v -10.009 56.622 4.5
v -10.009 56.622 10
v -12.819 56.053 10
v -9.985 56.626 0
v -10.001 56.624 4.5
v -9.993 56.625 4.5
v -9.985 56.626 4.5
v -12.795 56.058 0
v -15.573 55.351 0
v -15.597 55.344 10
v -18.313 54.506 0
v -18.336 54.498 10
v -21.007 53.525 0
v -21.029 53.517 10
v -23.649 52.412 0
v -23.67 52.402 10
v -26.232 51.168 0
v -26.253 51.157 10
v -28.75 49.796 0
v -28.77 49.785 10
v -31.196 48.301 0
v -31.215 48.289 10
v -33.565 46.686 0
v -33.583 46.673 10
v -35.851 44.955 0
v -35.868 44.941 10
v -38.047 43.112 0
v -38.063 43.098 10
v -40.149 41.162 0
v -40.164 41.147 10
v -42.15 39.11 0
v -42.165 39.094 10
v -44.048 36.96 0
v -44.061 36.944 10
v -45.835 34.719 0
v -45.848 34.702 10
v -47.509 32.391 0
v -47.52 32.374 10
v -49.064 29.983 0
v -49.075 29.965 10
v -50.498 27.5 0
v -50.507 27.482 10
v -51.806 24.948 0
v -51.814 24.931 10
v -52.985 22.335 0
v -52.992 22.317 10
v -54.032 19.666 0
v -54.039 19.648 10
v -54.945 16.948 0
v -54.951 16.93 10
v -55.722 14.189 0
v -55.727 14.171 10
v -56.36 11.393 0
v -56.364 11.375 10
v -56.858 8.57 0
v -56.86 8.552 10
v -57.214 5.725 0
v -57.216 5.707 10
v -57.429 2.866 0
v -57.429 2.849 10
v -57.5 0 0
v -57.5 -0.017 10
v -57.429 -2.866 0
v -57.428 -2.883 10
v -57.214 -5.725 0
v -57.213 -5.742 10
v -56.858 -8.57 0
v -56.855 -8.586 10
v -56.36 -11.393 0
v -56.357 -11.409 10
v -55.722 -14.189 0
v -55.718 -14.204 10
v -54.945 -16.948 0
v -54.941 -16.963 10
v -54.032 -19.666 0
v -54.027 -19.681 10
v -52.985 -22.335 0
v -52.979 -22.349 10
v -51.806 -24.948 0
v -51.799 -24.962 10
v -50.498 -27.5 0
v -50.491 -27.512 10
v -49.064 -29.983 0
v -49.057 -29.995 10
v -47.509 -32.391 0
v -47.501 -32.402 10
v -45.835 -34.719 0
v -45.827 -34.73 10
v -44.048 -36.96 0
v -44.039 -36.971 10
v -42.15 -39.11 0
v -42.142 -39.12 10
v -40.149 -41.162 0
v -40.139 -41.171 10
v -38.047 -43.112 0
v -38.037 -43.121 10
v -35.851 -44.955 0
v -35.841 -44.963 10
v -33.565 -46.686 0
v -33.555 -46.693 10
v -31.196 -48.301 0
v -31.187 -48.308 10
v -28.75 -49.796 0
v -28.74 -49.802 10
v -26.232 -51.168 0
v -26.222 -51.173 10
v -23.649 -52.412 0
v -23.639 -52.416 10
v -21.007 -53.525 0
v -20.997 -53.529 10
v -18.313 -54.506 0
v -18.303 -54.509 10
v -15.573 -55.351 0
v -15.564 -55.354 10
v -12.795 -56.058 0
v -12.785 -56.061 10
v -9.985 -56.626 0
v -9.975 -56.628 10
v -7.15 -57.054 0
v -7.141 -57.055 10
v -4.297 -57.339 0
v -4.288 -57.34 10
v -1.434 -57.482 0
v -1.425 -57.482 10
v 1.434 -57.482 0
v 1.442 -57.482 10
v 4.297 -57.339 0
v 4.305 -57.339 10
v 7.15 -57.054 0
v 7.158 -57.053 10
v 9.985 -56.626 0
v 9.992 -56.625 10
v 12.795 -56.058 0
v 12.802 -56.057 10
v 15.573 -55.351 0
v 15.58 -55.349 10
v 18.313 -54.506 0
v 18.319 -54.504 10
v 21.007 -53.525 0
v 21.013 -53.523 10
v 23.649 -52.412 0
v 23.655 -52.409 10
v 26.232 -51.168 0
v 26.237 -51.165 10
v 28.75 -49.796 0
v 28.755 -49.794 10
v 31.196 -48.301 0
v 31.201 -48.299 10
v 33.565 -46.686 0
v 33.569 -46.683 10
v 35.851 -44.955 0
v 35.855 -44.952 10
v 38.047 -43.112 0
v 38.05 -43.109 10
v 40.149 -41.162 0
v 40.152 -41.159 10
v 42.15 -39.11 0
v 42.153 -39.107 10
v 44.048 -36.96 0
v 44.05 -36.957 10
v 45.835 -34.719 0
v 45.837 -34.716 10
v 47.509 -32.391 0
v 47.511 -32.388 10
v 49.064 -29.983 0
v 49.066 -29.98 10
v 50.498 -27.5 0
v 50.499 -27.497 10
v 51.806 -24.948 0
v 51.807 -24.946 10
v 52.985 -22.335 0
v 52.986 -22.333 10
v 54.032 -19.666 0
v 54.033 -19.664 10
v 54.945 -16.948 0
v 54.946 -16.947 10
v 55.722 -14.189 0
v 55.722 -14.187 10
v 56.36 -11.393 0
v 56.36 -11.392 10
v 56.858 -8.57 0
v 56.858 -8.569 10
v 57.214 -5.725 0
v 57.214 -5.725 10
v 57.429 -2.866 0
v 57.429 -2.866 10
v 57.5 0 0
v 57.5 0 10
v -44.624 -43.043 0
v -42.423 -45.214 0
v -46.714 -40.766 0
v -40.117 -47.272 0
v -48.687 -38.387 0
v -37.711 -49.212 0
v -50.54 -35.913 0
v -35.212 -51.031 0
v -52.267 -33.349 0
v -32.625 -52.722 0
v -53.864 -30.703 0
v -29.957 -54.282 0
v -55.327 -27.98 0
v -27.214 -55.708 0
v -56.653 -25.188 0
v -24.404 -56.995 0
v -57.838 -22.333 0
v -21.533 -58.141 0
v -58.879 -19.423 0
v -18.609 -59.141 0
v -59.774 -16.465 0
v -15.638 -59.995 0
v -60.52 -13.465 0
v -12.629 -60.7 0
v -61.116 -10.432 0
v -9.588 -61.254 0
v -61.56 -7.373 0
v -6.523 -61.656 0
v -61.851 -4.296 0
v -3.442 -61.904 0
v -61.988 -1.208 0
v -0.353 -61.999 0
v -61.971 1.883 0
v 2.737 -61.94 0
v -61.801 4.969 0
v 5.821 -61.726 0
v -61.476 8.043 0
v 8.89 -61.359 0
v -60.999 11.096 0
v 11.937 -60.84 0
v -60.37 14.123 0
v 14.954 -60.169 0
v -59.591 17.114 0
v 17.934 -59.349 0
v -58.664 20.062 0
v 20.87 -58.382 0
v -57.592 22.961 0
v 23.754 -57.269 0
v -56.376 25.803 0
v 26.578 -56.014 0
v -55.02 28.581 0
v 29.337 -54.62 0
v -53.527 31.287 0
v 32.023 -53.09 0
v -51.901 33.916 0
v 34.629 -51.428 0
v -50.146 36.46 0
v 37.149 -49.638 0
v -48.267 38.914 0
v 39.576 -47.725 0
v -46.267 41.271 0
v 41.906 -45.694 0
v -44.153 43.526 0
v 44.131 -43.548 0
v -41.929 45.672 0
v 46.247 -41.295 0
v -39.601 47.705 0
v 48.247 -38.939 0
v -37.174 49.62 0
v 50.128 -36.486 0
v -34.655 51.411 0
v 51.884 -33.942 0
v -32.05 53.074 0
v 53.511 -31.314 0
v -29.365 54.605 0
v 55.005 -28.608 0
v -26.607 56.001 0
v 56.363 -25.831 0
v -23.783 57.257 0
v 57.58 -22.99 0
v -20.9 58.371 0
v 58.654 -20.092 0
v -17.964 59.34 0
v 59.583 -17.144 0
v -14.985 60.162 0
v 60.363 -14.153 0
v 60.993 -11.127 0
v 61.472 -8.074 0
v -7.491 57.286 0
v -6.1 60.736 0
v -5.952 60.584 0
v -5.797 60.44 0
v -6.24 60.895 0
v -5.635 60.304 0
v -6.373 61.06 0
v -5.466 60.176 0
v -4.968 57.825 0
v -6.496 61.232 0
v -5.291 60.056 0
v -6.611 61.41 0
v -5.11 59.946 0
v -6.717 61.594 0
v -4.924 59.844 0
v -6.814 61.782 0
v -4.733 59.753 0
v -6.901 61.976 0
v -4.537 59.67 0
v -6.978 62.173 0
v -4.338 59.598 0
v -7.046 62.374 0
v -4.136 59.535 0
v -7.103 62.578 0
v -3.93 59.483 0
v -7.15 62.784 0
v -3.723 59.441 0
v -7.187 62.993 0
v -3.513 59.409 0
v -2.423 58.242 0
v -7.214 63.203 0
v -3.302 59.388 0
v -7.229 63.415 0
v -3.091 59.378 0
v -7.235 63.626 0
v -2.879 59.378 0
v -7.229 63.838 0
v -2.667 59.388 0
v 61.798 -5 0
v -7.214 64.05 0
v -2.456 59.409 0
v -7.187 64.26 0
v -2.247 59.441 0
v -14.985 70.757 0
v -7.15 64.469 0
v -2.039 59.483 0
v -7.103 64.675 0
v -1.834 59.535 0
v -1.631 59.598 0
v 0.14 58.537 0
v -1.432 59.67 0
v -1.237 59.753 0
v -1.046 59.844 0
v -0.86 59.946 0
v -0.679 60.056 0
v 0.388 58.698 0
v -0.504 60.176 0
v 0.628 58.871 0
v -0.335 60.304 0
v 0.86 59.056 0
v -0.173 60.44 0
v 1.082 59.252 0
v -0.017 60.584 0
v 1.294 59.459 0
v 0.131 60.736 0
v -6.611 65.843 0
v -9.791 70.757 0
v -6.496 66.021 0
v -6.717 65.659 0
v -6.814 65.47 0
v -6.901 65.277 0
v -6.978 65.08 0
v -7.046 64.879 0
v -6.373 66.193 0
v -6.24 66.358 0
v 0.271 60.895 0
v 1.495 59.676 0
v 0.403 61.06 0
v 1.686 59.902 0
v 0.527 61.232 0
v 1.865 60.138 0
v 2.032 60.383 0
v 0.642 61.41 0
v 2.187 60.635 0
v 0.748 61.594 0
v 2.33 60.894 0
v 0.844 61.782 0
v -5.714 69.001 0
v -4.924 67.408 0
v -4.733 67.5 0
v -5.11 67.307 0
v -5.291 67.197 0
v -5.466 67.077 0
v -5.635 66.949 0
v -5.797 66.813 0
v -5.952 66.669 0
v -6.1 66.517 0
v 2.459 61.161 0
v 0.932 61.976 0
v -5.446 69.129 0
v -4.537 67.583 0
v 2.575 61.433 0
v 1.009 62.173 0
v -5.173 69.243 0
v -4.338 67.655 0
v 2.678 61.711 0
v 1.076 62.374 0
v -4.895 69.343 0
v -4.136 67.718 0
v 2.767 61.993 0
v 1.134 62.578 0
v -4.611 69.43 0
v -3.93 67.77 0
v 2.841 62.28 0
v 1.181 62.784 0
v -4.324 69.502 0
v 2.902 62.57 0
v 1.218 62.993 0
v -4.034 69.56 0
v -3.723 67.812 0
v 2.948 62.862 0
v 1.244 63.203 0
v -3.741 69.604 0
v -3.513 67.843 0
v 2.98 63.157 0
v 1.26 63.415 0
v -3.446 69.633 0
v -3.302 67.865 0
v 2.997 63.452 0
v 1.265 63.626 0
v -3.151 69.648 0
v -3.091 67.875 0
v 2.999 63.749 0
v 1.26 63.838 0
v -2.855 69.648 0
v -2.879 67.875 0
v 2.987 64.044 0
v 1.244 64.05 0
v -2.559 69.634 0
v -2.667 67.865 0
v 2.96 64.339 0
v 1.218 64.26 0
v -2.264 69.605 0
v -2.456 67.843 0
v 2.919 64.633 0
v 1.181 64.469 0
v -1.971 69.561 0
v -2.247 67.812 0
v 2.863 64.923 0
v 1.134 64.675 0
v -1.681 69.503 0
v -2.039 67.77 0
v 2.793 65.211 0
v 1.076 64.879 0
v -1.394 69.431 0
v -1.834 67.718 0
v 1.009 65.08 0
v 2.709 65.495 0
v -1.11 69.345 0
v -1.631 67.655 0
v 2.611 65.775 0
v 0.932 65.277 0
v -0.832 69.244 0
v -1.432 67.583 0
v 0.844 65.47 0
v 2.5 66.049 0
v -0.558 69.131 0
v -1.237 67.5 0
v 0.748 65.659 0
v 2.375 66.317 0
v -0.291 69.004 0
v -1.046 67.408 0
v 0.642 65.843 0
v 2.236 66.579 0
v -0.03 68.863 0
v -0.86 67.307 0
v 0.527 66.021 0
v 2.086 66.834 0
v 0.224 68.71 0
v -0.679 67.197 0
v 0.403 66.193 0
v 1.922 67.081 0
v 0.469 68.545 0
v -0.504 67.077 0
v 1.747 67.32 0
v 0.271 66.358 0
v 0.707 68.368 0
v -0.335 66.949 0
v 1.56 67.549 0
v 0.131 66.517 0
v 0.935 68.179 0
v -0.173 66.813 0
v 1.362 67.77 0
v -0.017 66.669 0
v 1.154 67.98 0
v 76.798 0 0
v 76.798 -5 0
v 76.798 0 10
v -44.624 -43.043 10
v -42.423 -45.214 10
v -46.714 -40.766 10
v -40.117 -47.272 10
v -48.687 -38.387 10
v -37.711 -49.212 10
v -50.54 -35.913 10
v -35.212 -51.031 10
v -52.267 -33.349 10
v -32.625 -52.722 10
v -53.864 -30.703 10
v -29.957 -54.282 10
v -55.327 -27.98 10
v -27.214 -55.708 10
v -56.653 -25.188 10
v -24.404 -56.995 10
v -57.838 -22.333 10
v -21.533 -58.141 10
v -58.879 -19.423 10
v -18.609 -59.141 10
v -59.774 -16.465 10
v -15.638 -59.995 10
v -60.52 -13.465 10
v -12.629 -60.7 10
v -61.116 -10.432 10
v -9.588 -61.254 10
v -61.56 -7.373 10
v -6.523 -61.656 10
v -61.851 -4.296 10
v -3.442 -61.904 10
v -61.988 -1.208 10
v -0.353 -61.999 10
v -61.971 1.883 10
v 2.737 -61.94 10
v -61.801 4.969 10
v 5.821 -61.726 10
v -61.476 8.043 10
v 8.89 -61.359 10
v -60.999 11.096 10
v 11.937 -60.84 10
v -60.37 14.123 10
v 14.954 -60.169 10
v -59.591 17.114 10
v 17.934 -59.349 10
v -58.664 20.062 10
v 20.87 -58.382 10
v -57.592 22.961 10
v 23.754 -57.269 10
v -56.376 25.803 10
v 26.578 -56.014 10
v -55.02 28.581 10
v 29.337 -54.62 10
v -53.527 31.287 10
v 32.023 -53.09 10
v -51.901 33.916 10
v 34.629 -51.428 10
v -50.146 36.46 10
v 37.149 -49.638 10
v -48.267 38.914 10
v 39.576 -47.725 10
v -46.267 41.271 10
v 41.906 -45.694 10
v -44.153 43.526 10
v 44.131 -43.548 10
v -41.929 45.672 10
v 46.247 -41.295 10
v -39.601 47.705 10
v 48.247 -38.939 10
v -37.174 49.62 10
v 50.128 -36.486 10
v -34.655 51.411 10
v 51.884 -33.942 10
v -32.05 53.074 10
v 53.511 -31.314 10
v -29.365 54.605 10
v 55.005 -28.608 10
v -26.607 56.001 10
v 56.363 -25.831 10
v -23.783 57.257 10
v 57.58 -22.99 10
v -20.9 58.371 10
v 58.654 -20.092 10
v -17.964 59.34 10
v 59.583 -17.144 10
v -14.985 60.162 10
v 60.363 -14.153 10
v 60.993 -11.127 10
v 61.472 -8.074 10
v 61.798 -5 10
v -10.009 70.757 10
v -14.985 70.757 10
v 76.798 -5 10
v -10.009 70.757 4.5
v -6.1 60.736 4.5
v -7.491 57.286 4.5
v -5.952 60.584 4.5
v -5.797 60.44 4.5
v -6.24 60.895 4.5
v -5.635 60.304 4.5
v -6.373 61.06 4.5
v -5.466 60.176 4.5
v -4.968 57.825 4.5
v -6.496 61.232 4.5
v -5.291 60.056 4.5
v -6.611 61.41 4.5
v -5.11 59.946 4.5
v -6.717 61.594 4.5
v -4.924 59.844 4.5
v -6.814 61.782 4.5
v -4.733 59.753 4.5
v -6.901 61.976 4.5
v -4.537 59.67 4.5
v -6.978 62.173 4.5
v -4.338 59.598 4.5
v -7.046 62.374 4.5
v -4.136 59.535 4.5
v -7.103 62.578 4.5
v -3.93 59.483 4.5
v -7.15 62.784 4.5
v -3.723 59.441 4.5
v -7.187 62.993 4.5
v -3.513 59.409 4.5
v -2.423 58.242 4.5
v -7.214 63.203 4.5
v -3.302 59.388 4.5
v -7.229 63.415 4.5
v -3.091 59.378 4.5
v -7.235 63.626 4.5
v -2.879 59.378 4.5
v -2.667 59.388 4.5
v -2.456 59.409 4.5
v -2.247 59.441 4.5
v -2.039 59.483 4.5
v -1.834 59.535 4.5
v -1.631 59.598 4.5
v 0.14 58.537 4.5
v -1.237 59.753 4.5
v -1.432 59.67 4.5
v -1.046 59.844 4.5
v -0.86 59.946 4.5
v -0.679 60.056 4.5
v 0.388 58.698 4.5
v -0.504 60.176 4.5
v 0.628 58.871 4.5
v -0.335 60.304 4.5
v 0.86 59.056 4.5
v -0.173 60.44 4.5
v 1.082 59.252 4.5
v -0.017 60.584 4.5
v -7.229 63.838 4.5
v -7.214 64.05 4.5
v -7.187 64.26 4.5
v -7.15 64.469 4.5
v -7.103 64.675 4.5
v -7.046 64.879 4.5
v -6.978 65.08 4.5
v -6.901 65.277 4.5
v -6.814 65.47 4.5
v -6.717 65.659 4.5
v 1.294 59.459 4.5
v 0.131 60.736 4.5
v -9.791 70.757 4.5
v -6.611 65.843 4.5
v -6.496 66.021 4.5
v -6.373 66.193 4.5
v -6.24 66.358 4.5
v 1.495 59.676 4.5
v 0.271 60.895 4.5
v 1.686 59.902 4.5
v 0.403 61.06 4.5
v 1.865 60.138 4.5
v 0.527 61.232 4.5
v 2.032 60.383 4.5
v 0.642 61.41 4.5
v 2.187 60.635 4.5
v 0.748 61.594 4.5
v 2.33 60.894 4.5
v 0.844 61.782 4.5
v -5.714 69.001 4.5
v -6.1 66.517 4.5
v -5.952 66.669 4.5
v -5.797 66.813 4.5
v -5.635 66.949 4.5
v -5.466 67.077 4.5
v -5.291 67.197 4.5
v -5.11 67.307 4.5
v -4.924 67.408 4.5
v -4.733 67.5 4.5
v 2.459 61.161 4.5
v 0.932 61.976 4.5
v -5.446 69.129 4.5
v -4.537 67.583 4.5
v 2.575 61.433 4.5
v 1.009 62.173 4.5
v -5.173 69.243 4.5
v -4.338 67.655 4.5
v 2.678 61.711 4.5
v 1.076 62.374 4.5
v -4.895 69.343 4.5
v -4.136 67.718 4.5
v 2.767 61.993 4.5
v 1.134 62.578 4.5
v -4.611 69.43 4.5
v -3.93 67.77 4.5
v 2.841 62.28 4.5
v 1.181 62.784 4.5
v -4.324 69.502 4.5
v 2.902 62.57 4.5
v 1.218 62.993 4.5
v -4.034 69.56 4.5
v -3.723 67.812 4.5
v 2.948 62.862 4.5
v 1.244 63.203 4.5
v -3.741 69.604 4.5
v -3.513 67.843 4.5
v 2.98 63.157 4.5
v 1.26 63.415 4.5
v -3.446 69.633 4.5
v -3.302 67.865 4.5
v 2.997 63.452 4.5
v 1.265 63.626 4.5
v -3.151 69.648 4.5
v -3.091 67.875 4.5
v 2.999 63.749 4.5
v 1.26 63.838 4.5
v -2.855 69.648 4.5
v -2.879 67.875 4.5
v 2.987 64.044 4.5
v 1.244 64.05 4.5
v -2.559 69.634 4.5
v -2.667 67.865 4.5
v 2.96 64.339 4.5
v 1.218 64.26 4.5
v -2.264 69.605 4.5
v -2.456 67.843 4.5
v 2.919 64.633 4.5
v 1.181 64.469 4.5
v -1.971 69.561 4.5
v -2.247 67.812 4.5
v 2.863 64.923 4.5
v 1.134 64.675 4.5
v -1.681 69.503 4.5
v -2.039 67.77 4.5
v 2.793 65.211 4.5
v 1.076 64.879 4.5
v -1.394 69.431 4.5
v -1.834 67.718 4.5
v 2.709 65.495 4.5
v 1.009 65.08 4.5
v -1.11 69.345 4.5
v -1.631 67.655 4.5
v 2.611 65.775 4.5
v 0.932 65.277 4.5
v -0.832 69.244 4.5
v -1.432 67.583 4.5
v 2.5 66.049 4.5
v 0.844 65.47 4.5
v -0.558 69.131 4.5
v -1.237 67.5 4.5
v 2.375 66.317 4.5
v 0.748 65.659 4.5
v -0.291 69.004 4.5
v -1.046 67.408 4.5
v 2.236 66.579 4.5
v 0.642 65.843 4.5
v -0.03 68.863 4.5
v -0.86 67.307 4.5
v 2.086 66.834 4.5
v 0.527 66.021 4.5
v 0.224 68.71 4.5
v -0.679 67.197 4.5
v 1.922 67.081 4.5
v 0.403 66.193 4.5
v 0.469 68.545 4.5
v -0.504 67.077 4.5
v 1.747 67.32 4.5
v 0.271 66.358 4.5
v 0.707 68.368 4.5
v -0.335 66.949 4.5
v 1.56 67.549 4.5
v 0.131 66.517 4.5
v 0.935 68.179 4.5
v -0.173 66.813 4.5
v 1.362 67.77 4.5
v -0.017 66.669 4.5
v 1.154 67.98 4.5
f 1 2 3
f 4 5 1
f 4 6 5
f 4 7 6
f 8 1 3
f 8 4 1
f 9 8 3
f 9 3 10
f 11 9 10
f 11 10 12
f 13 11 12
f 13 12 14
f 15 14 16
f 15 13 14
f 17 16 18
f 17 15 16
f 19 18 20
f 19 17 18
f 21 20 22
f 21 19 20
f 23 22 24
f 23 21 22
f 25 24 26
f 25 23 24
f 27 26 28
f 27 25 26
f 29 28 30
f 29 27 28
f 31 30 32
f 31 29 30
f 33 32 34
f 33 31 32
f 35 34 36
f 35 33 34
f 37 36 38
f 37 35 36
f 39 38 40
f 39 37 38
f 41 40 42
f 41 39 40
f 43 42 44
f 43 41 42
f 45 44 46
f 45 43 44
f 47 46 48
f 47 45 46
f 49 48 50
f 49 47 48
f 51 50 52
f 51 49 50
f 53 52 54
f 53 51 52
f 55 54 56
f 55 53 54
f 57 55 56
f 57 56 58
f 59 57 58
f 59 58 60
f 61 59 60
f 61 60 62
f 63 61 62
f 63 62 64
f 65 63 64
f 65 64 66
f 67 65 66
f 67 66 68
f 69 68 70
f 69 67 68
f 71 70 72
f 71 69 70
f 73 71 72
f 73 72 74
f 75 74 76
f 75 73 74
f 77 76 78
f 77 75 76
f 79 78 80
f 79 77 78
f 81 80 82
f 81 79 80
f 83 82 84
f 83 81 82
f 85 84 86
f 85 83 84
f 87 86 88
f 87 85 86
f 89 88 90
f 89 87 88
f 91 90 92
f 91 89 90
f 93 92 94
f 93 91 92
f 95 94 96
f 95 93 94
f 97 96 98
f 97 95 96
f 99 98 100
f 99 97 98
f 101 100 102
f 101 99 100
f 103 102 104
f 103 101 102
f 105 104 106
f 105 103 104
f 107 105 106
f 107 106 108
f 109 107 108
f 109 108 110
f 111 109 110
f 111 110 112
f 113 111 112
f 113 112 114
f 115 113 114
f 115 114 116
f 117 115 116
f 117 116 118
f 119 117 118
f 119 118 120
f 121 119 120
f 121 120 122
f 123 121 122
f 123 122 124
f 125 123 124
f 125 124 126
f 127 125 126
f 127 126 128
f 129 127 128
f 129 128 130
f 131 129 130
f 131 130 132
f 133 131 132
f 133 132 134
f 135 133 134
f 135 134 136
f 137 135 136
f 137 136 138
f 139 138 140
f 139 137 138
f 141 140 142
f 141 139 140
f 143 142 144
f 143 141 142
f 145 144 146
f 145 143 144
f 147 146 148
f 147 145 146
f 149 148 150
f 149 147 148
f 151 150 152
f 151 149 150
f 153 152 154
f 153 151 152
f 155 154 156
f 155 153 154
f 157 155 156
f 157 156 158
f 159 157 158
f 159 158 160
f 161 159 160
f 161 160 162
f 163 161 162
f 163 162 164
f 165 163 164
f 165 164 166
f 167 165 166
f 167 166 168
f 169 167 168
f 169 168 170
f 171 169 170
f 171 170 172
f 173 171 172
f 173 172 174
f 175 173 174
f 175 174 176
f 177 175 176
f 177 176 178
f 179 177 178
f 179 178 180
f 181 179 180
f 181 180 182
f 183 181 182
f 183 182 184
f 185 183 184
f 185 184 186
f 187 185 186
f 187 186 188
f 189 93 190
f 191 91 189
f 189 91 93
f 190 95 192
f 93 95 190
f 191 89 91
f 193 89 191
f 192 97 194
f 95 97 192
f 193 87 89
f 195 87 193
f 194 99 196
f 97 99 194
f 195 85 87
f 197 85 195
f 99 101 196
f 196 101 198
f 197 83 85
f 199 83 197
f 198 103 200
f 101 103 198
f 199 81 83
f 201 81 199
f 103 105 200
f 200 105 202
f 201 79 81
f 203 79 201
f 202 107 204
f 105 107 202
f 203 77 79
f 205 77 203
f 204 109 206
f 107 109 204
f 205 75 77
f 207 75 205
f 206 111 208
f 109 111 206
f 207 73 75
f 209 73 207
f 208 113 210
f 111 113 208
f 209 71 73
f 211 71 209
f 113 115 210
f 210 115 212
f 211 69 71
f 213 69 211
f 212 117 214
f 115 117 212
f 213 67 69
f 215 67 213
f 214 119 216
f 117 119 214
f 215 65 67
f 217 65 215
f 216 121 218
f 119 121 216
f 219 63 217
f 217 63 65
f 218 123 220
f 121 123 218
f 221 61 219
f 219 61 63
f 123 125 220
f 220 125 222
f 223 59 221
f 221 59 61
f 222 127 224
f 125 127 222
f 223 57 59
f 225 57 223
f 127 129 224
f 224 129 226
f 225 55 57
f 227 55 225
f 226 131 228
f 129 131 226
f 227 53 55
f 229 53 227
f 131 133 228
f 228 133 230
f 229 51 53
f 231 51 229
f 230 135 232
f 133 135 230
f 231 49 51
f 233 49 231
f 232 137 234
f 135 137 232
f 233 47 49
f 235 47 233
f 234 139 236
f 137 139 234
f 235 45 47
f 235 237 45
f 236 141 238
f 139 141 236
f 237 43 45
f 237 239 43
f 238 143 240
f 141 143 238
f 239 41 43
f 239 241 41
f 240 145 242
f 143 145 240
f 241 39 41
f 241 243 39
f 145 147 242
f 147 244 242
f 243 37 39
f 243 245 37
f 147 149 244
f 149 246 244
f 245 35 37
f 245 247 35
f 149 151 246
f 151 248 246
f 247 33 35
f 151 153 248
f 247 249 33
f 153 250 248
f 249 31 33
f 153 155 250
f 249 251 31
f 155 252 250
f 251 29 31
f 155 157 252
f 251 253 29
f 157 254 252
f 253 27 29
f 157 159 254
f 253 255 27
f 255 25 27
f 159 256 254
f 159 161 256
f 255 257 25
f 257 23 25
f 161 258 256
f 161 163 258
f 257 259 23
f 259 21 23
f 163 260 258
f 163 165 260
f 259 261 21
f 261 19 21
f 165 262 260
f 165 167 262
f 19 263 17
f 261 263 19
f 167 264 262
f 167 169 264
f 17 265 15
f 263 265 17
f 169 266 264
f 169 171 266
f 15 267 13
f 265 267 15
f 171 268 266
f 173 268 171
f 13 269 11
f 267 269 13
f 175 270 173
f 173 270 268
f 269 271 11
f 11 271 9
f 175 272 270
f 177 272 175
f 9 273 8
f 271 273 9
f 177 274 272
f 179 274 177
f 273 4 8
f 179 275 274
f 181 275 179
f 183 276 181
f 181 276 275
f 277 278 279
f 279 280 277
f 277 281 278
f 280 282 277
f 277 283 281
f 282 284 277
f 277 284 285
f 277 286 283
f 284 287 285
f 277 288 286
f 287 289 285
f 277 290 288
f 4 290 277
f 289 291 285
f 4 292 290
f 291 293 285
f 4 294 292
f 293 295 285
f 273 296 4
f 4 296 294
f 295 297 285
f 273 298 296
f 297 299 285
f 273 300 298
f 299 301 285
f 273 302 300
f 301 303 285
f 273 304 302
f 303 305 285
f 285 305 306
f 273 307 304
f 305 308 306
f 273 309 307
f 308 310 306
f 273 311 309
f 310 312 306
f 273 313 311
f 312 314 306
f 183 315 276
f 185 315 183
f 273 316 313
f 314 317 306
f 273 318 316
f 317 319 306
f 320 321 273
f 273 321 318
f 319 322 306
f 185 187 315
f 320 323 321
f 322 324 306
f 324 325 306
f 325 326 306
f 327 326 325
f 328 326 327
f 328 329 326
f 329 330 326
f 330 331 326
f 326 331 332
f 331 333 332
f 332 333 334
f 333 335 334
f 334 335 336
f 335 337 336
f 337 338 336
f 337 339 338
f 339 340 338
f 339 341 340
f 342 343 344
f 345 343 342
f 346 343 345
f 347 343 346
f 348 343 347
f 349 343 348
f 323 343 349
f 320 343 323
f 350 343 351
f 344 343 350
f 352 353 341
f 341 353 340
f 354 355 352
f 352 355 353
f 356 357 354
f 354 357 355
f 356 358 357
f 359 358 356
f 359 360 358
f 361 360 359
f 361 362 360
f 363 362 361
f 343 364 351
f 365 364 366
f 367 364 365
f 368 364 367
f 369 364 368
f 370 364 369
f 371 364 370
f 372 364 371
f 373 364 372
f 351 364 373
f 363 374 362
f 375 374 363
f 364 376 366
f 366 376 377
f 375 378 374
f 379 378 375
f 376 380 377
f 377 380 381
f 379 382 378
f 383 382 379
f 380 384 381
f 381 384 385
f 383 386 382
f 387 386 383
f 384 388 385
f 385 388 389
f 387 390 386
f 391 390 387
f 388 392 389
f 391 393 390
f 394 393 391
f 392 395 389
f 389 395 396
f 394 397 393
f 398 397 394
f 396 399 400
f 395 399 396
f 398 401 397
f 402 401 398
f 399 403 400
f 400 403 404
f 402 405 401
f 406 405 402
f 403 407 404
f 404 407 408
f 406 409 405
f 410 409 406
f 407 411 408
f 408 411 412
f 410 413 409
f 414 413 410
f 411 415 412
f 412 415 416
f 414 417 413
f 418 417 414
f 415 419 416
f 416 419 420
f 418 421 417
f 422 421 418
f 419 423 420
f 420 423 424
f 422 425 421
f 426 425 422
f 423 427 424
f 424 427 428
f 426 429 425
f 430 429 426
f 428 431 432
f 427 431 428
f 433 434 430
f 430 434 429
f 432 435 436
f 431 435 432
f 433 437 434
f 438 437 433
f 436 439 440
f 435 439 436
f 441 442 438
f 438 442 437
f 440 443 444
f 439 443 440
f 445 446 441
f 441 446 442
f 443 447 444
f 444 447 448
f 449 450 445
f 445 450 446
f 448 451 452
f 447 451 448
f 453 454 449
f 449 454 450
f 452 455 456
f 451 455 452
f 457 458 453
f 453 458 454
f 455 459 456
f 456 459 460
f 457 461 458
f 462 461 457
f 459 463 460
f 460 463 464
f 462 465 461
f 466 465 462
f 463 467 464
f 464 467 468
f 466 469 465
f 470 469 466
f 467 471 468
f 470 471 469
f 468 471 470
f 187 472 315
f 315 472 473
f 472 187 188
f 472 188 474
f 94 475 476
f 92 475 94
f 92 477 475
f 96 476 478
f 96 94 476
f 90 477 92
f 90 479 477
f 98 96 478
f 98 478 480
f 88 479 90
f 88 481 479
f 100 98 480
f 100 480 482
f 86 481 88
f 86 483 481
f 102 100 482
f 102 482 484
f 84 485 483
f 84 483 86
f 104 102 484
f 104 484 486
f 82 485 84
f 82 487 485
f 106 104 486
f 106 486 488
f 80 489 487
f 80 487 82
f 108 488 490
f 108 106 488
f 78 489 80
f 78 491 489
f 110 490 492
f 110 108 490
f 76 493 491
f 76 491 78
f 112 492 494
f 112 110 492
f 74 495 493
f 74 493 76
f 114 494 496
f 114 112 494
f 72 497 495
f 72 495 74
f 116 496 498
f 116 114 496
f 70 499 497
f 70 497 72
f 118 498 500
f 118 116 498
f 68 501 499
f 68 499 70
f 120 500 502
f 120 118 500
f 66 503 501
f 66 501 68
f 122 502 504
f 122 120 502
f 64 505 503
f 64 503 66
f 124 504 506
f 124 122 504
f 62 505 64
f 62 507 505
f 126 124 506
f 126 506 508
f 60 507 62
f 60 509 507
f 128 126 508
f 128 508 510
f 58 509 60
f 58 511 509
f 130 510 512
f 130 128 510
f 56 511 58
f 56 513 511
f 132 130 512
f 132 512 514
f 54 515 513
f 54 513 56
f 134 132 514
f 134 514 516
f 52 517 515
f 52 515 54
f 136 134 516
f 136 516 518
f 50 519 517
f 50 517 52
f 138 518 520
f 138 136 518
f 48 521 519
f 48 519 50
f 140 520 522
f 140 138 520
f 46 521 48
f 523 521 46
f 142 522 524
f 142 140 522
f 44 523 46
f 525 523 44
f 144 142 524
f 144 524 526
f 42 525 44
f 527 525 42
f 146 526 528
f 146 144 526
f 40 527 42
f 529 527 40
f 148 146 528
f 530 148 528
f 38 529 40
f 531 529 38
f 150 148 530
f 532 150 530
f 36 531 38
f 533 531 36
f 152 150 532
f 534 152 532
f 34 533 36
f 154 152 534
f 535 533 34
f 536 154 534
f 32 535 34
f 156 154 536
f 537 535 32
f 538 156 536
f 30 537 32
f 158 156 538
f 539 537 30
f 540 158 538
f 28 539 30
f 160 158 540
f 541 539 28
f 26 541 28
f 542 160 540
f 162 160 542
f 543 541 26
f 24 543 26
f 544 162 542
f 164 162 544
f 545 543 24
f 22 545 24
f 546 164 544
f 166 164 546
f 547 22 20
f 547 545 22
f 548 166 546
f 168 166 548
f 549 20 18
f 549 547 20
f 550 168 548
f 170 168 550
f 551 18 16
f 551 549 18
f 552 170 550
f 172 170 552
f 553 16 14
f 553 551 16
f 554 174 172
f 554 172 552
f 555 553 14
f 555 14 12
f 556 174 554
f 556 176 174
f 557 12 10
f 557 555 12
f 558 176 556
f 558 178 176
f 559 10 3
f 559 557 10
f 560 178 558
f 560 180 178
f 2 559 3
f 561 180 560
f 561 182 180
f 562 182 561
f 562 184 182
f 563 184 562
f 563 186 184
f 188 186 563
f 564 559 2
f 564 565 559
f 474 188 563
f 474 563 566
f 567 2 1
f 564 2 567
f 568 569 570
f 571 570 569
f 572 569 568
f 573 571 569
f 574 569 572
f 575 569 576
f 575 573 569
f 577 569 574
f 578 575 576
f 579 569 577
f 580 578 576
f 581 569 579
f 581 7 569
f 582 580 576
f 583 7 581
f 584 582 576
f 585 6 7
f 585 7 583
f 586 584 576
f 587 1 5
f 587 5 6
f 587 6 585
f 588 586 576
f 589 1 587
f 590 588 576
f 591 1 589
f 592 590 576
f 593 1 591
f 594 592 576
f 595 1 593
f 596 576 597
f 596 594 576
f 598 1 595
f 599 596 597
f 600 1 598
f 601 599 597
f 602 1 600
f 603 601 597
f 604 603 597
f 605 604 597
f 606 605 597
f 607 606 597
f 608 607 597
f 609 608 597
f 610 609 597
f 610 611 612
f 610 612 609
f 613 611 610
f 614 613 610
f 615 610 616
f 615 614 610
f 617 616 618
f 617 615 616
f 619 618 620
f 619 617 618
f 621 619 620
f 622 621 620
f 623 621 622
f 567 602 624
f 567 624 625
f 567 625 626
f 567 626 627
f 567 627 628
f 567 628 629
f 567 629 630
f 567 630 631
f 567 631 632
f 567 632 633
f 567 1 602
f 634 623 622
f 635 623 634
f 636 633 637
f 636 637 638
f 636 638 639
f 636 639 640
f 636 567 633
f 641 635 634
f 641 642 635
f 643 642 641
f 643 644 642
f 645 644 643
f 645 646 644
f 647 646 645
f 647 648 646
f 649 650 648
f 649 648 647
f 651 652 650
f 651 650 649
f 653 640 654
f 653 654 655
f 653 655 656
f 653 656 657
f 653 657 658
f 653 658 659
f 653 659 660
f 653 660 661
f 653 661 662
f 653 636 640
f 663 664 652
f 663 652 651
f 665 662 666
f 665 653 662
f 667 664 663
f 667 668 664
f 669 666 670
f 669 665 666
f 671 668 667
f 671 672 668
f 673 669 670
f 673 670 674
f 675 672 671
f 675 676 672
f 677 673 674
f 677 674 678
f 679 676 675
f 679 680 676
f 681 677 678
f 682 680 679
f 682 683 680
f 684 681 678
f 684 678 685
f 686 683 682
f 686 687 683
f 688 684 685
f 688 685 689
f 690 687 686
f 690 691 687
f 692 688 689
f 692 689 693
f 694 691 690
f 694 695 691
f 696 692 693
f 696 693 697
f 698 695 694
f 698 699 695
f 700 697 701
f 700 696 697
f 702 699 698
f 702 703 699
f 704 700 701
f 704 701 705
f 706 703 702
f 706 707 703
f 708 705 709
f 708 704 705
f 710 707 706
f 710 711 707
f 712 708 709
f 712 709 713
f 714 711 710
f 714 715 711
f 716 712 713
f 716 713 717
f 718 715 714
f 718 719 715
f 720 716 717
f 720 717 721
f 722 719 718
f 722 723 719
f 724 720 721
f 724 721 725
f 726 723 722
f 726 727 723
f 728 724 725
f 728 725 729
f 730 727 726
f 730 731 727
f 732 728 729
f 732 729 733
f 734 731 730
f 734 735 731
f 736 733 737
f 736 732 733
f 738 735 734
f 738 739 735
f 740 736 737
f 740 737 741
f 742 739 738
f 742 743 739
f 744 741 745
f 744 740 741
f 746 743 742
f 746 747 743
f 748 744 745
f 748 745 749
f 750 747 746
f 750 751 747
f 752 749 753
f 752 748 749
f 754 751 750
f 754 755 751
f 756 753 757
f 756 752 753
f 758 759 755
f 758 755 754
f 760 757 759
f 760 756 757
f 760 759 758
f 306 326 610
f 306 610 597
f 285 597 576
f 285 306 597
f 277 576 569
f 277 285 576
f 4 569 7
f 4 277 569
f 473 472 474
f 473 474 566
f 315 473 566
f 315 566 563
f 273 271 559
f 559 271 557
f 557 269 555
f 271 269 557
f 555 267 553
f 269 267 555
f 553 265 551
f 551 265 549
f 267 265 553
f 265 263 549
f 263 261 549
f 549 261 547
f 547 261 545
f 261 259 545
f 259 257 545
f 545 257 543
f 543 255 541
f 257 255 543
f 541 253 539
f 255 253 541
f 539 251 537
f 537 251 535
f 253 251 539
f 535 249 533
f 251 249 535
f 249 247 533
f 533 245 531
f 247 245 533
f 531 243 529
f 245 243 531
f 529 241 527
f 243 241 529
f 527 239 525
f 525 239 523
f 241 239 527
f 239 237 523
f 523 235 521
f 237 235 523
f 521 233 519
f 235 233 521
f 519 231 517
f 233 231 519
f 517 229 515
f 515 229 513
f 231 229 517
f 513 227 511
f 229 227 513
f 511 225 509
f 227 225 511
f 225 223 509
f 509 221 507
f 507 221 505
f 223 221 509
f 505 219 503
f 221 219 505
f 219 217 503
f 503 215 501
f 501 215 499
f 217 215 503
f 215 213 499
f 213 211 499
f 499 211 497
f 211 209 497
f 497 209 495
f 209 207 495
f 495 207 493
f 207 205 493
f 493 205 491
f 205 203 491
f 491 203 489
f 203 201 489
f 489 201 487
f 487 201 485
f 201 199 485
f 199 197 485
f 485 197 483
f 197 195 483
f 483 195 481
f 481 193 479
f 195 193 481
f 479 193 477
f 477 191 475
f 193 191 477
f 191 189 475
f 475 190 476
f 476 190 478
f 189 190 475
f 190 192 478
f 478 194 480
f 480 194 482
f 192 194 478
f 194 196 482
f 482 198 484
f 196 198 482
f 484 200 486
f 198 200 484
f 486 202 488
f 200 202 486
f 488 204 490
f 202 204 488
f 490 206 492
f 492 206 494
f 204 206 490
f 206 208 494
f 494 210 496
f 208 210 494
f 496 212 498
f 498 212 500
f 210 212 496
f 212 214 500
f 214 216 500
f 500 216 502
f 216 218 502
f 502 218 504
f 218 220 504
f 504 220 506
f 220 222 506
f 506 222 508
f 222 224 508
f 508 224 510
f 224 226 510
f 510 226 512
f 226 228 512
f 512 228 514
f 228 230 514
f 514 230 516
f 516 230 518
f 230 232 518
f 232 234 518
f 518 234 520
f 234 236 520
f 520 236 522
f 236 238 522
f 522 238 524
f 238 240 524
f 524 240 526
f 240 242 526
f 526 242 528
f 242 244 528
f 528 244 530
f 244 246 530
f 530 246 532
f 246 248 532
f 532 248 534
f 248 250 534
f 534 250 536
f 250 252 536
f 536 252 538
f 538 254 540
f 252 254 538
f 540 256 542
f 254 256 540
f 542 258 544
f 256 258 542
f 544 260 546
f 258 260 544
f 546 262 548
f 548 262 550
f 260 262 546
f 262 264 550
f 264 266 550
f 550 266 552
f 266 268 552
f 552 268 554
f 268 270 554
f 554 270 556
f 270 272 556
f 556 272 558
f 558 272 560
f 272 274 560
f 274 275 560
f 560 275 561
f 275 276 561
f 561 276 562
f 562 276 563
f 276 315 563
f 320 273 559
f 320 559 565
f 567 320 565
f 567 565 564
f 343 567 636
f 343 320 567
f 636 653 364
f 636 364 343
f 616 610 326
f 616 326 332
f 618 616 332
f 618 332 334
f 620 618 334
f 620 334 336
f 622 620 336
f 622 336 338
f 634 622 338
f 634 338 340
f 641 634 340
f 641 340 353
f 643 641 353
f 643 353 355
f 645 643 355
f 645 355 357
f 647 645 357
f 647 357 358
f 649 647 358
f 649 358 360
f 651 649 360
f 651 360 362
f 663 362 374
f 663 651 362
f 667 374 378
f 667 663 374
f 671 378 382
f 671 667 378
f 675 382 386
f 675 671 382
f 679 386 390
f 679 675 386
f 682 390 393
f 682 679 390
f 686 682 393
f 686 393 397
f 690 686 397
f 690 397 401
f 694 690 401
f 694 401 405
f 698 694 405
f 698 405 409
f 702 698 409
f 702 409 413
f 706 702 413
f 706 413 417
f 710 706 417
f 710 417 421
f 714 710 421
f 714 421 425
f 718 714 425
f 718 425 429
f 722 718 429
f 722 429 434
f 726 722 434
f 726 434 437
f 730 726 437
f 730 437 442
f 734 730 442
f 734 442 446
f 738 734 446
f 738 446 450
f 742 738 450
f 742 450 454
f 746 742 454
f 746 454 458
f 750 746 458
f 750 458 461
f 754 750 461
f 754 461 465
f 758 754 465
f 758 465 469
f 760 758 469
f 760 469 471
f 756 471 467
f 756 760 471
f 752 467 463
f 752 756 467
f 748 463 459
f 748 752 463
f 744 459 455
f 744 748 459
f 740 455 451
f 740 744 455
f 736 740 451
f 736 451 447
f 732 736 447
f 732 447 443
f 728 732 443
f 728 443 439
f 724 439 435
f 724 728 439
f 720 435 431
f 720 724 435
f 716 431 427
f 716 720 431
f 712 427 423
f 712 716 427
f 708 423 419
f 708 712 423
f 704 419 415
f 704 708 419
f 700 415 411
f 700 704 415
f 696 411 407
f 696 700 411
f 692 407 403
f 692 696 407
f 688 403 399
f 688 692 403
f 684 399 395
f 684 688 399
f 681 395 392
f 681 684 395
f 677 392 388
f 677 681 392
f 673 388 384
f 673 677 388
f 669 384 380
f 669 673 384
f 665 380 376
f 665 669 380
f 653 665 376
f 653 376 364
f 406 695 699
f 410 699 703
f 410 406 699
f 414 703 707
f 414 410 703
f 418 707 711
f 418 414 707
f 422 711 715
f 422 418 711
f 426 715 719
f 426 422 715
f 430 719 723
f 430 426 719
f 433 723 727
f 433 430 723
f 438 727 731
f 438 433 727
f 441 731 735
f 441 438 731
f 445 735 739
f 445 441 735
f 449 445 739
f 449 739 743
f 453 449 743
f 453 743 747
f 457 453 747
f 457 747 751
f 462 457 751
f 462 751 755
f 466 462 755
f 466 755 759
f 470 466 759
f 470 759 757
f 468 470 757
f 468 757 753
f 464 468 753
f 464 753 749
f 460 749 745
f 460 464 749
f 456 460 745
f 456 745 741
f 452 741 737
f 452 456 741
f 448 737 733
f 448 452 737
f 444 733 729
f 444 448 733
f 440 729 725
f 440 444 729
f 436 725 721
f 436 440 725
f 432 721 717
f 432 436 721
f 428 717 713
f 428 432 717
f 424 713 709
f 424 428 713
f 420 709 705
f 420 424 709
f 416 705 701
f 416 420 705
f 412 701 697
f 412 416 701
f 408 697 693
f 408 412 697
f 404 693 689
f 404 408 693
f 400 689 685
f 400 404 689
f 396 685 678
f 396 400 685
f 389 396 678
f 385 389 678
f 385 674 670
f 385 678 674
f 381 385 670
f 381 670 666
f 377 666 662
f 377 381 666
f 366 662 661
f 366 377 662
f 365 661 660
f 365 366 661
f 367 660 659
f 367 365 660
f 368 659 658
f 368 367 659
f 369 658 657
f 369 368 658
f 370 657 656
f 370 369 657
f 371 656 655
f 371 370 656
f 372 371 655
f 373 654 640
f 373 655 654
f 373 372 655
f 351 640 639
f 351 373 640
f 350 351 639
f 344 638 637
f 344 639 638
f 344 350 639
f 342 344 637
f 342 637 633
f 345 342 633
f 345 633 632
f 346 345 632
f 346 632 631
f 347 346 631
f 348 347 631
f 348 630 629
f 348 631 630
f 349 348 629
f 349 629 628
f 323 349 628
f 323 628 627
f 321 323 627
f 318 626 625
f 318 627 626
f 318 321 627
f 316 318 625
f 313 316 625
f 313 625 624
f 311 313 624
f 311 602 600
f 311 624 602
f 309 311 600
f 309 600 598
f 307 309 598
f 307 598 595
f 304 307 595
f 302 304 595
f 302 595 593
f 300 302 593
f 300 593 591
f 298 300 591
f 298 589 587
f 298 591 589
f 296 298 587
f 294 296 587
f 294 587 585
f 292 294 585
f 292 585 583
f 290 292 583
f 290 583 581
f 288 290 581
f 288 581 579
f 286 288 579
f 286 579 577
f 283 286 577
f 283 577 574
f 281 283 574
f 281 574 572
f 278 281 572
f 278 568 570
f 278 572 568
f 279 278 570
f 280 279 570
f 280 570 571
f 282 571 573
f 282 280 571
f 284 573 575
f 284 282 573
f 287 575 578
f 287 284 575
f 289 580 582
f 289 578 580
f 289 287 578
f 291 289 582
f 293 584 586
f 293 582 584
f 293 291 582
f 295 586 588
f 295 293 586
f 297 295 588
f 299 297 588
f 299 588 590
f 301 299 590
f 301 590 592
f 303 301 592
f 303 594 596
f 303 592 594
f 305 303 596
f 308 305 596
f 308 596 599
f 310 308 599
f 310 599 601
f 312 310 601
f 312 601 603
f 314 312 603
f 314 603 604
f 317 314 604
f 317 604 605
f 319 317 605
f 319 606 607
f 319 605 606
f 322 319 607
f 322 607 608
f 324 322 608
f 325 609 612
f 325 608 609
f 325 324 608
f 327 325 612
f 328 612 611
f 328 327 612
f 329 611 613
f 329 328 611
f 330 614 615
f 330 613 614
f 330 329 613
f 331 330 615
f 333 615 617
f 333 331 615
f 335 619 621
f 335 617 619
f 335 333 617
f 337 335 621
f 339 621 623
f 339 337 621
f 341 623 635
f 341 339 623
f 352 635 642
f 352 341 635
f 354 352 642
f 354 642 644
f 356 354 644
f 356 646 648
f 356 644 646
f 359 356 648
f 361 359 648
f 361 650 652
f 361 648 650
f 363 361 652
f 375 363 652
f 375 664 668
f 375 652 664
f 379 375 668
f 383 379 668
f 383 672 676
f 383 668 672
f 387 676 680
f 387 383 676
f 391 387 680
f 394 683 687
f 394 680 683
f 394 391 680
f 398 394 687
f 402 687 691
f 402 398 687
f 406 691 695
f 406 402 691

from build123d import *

# Parameters (mm, degrees)
SKETCH_R        = 4.25
PAD_DEPTH       = 10
POCKET_DEPTH    = 5.5
POCKET001_DEPTH = 5


with BuildPart() as part:
    # Sketch → Pad (new body)
    with BuildSketch(Plane.XY):
        with BuildLine():
            ThreePointArc((-9.98477, 56.626446), (-36.960288, -44.047555), (57.5, 0))
            Line((57.5, 0), (76.798058, 0))
            Line((76.798058, 0), (76.798058, -5))
            Line((76.798058, -5), (61.798058, -5))
            ThreePointArc((-14.984756, 60.161924), (-40.117208, -47.271657), (61.798058, -5))
            Line((-14.984756, 60.161924), (-14.984756, 70.757167))
            Line((-14.984756, 70.757167), (5.015244, 70.757167))
            Line((5.015244, 70.757167), (5.015244, 58.757167))
            ThreePointArc((5.015244, 58.757167), (-2.560203, 58.222895), (-9.98477, 56.626446))
        make_face()
        with Locations((-2.984756, 63.626448)):
            Circle(SKETCH_R, mode=Mode.SUBTRACT)
    extrude(amount=PAD_DEPTH)

    # Sketch001 (on Face12 of Pad) → Pocket (cut)
    with BuildSketch(Plane.XY.offset(10)):
        with BuildLine():
            ThreePointArc((5.1, 58.499907), (-2.531657, 57.967199), (-10.00931, 56.351442))
            Line((-10.00931, 56.351442), (-10.00931, 70.999907))
            Line((-10.00931, 70.999907), (5.1, 70.999907))
            Line((5.1, 70.999907), (5.1, 58.499907))
        make_face()
    extrude(amount=-POCKET_DEPTH, mode=Mode.SUBTRACT)

    # Sketch002 (on Face6 of Pocket) → Pocket001 (cut)
    with BuildSketch(Plane.XY.offset(4.5)):
        with BuildLine():
            ThreePointArc((-1, 57.993146), (2.515586, 66.011846), (-5.713792, 69.001199))
            Line((-5.713792, 69.001199), (-11.5, 71.493146))
            Line((-11.5, 71.493146), (6, 71.493146))
            Line((6, 71.493146), (6, 57.993146))
            Line((6, 57.993146), (-1, 57.993146))
        make_face()
    extrude(amount=-POCKET001_DEPTH, mode=Mode.SUBTRACT)


solid = part.part
